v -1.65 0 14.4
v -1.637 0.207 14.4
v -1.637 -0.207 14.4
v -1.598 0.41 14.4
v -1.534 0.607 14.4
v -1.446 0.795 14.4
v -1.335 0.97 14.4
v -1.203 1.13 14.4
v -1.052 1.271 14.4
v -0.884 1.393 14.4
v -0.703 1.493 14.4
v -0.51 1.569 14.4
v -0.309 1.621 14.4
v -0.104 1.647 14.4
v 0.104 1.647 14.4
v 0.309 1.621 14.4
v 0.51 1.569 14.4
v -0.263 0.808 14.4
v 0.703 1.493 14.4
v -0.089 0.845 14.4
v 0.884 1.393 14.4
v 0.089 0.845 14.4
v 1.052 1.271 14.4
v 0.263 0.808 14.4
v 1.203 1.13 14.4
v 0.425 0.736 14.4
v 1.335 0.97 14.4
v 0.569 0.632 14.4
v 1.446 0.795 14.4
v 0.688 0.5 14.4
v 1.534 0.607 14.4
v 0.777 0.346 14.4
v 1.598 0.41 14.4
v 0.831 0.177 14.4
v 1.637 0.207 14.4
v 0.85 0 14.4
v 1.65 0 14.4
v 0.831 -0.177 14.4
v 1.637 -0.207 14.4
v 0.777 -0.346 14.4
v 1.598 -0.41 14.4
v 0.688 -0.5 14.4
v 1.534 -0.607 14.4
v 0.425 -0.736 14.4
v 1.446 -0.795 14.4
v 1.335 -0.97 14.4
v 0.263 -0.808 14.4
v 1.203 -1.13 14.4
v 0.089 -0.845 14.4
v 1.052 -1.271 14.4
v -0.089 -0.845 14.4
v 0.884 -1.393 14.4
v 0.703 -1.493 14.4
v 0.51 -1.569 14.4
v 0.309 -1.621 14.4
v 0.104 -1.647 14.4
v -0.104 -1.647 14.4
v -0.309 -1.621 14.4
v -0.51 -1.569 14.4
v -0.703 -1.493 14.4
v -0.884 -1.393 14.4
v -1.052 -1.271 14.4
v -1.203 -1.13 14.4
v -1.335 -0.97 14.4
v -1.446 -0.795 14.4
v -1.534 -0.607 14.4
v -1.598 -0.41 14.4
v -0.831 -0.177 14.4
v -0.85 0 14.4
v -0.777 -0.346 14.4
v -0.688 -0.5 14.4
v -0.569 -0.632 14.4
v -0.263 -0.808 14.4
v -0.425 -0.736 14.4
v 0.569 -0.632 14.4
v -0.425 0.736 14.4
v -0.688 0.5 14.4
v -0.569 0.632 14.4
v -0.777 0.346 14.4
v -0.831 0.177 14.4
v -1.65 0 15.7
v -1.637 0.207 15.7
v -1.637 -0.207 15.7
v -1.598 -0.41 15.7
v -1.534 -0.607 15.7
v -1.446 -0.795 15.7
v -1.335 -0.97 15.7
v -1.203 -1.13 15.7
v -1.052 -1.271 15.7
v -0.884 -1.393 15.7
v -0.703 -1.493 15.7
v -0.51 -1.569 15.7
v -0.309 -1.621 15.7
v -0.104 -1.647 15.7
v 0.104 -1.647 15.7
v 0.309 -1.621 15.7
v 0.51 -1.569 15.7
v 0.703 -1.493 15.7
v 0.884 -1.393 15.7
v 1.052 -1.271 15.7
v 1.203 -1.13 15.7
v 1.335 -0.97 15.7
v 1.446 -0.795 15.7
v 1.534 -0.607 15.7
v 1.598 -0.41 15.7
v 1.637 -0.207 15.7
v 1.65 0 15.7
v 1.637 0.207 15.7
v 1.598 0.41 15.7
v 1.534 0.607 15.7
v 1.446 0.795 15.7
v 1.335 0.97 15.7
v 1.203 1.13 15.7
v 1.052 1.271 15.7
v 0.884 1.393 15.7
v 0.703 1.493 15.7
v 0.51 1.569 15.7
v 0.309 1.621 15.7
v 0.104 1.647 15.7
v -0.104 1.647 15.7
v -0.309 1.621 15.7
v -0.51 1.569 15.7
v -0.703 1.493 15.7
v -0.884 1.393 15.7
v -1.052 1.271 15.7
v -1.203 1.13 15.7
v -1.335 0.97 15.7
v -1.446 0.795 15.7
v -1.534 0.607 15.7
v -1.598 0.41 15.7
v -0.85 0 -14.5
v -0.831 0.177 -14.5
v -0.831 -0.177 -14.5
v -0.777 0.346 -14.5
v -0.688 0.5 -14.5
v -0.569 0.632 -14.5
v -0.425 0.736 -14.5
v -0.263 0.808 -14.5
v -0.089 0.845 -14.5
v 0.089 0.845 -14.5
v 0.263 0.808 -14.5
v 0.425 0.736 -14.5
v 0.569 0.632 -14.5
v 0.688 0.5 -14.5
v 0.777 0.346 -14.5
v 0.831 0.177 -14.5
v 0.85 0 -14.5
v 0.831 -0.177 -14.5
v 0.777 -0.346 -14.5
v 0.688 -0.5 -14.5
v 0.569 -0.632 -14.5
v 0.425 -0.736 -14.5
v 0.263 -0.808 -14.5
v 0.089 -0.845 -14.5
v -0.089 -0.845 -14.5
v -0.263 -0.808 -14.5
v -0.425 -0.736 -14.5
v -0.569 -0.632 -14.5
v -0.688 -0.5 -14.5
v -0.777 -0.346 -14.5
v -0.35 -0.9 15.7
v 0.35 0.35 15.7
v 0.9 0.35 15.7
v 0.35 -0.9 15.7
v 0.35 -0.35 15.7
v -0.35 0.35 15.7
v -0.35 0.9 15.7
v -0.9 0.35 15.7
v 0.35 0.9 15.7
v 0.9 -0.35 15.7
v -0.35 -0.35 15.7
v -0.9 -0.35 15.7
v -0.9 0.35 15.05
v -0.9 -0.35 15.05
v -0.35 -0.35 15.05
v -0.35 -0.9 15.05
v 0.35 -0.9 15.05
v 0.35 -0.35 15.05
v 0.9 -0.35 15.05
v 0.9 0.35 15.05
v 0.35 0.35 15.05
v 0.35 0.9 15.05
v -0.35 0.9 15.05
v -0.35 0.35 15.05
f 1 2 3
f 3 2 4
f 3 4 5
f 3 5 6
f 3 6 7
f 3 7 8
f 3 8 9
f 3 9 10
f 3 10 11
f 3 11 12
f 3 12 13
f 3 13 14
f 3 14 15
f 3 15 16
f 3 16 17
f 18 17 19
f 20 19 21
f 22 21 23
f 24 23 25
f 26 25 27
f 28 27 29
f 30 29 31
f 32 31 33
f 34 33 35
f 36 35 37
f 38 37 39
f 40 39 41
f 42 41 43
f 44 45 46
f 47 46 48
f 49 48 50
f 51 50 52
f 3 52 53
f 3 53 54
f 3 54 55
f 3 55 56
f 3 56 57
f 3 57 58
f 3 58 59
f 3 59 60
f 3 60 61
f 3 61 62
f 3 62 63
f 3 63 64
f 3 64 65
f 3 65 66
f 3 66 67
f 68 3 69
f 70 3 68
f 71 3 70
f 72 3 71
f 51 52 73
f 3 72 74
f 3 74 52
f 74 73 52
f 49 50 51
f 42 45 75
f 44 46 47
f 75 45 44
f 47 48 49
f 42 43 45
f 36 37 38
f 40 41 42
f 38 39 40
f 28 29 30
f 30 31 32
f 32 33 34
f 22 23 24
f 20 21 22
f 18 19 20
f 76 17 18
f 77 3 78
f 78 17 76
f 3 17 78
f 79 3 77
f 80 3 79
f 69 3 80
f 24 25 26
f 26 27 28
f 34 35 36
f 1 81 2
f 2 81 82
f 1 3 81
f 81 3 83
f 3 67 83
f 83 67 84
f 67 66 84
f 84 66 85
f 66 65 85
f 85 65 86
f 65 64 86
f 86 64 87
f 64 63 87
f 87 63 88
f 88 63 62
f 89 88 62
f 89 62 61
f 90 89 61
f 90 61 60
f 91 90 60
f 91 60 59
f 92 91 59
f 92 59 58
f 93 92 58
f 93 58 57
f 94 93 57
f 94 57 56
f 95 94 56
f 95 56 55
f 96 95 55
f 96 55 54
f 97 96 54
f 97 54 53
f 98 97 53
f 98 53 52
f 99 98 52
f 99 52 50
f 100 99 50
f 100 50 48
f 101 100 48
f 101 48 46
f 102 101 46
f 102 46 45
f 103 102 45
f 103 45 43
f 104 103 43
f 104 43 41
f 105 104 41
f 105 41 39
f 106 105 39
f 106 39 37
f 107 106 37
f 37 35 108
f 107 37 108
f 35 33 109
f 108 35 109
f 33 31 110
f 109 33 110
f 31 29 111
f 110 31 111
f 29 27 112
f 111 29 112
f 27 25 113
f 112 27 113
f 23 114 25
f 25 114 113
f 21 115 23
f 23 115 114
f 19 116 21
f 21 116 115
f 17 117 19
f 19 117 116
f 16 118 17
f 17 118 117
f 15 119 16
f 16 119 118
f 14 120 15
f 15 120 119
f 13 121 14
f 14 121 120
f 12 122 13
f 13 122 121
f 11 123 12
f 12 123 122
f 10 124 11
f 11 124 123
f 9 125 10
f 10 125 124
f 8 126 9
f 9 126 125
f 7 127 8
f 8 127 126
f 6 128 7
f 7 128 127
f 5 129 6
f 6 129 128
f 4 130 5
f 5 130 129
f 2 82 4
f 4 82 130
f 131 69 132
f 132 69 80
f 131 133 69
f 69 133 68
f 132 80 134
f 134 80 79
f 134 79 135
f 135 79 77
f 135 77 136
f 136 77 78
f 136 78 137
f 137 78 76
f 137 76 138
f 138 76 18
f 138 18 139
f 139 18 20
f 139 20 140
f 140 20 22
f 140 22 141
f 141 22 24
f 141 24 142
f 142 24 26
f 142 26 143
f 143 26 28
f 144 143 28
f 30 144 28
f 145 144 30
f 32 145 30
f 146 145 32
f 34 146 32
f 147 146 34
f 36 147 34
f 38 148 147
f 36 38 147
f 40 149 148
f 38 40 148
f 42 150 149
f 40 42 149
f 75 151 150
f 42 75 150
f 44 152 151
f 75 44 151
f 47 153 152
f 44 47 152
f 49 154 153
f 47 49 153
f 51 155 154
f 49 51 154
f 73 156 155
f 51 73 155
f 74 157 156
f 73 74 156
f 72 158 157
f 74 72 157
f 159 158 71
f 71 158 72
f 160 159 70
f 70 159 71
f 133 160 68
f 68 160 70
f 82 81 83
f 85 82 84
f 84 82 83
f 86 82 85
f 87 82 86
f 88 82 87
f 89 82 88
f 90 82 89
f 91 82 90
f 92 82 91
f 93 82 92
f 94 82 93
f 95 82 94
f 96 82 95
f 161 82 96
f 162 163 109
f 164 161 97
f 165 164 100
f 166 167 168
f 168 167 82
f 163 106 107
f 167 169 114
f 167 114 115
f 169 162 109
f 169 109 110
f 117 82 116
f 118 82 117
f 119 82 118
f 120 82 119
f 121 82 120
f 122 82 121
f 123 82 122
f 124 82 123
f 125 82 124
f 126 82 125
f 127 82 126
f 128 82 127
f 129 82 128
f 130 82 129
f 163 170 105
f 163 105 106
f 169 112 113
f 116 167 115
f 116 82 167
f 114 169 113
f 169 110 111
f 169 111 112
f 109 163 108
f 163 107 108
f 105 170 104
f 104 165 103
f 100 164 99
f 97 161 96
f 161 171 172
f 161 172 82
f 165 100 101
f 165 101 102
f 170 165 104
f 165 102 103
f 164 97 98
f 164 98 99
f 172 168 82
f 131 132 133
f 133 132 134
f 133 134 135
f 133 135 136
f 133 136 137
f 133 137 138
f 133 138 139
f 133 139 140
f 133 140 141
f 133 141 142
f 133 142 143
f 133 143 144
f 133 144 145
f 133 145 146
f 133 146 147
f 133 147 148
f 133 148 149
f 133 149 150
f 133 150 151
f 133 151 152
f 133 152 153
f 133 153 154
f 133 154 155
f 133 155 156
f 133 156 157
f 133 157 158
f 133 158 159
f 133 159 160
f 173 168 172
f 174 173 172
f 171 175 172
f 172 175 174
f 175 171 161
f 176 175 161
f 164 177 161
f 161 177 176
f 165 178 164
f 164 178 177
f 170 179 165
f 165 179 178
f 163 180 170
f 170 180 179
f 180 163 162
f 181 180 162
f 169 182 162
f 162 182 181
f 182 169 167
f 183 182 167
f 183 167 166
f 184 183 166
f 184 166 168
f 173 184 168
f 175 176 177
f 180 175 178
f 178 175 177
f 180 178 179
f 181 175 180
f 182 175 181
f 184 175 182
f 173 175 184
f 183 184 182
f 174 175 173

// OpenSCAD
X = 0;
Y = 1;
Z = 2;


len = 29;
diam = 1.7;

head_diam = 3.3;
head_th = 1.3;

extra = 5;

cross_size = [1.8, 0.7, extra];

module cross()
{
  cube(cross_size, center = true);

  rotate([0,0,90])
    cube(cross_size, center = true);
}

module head()
{

  difference() {
    cylinder(r=head_diam/2, h = head_th, center = true, $fn=50);
    
    translate([0,0, cross_size[Z]/2])
      cross();
 }     

}


cylinder(r=diam/2, h = len, center = true, $fn=30);
translate([0,0,head_th/2 + len/2 -0.1])
head();
